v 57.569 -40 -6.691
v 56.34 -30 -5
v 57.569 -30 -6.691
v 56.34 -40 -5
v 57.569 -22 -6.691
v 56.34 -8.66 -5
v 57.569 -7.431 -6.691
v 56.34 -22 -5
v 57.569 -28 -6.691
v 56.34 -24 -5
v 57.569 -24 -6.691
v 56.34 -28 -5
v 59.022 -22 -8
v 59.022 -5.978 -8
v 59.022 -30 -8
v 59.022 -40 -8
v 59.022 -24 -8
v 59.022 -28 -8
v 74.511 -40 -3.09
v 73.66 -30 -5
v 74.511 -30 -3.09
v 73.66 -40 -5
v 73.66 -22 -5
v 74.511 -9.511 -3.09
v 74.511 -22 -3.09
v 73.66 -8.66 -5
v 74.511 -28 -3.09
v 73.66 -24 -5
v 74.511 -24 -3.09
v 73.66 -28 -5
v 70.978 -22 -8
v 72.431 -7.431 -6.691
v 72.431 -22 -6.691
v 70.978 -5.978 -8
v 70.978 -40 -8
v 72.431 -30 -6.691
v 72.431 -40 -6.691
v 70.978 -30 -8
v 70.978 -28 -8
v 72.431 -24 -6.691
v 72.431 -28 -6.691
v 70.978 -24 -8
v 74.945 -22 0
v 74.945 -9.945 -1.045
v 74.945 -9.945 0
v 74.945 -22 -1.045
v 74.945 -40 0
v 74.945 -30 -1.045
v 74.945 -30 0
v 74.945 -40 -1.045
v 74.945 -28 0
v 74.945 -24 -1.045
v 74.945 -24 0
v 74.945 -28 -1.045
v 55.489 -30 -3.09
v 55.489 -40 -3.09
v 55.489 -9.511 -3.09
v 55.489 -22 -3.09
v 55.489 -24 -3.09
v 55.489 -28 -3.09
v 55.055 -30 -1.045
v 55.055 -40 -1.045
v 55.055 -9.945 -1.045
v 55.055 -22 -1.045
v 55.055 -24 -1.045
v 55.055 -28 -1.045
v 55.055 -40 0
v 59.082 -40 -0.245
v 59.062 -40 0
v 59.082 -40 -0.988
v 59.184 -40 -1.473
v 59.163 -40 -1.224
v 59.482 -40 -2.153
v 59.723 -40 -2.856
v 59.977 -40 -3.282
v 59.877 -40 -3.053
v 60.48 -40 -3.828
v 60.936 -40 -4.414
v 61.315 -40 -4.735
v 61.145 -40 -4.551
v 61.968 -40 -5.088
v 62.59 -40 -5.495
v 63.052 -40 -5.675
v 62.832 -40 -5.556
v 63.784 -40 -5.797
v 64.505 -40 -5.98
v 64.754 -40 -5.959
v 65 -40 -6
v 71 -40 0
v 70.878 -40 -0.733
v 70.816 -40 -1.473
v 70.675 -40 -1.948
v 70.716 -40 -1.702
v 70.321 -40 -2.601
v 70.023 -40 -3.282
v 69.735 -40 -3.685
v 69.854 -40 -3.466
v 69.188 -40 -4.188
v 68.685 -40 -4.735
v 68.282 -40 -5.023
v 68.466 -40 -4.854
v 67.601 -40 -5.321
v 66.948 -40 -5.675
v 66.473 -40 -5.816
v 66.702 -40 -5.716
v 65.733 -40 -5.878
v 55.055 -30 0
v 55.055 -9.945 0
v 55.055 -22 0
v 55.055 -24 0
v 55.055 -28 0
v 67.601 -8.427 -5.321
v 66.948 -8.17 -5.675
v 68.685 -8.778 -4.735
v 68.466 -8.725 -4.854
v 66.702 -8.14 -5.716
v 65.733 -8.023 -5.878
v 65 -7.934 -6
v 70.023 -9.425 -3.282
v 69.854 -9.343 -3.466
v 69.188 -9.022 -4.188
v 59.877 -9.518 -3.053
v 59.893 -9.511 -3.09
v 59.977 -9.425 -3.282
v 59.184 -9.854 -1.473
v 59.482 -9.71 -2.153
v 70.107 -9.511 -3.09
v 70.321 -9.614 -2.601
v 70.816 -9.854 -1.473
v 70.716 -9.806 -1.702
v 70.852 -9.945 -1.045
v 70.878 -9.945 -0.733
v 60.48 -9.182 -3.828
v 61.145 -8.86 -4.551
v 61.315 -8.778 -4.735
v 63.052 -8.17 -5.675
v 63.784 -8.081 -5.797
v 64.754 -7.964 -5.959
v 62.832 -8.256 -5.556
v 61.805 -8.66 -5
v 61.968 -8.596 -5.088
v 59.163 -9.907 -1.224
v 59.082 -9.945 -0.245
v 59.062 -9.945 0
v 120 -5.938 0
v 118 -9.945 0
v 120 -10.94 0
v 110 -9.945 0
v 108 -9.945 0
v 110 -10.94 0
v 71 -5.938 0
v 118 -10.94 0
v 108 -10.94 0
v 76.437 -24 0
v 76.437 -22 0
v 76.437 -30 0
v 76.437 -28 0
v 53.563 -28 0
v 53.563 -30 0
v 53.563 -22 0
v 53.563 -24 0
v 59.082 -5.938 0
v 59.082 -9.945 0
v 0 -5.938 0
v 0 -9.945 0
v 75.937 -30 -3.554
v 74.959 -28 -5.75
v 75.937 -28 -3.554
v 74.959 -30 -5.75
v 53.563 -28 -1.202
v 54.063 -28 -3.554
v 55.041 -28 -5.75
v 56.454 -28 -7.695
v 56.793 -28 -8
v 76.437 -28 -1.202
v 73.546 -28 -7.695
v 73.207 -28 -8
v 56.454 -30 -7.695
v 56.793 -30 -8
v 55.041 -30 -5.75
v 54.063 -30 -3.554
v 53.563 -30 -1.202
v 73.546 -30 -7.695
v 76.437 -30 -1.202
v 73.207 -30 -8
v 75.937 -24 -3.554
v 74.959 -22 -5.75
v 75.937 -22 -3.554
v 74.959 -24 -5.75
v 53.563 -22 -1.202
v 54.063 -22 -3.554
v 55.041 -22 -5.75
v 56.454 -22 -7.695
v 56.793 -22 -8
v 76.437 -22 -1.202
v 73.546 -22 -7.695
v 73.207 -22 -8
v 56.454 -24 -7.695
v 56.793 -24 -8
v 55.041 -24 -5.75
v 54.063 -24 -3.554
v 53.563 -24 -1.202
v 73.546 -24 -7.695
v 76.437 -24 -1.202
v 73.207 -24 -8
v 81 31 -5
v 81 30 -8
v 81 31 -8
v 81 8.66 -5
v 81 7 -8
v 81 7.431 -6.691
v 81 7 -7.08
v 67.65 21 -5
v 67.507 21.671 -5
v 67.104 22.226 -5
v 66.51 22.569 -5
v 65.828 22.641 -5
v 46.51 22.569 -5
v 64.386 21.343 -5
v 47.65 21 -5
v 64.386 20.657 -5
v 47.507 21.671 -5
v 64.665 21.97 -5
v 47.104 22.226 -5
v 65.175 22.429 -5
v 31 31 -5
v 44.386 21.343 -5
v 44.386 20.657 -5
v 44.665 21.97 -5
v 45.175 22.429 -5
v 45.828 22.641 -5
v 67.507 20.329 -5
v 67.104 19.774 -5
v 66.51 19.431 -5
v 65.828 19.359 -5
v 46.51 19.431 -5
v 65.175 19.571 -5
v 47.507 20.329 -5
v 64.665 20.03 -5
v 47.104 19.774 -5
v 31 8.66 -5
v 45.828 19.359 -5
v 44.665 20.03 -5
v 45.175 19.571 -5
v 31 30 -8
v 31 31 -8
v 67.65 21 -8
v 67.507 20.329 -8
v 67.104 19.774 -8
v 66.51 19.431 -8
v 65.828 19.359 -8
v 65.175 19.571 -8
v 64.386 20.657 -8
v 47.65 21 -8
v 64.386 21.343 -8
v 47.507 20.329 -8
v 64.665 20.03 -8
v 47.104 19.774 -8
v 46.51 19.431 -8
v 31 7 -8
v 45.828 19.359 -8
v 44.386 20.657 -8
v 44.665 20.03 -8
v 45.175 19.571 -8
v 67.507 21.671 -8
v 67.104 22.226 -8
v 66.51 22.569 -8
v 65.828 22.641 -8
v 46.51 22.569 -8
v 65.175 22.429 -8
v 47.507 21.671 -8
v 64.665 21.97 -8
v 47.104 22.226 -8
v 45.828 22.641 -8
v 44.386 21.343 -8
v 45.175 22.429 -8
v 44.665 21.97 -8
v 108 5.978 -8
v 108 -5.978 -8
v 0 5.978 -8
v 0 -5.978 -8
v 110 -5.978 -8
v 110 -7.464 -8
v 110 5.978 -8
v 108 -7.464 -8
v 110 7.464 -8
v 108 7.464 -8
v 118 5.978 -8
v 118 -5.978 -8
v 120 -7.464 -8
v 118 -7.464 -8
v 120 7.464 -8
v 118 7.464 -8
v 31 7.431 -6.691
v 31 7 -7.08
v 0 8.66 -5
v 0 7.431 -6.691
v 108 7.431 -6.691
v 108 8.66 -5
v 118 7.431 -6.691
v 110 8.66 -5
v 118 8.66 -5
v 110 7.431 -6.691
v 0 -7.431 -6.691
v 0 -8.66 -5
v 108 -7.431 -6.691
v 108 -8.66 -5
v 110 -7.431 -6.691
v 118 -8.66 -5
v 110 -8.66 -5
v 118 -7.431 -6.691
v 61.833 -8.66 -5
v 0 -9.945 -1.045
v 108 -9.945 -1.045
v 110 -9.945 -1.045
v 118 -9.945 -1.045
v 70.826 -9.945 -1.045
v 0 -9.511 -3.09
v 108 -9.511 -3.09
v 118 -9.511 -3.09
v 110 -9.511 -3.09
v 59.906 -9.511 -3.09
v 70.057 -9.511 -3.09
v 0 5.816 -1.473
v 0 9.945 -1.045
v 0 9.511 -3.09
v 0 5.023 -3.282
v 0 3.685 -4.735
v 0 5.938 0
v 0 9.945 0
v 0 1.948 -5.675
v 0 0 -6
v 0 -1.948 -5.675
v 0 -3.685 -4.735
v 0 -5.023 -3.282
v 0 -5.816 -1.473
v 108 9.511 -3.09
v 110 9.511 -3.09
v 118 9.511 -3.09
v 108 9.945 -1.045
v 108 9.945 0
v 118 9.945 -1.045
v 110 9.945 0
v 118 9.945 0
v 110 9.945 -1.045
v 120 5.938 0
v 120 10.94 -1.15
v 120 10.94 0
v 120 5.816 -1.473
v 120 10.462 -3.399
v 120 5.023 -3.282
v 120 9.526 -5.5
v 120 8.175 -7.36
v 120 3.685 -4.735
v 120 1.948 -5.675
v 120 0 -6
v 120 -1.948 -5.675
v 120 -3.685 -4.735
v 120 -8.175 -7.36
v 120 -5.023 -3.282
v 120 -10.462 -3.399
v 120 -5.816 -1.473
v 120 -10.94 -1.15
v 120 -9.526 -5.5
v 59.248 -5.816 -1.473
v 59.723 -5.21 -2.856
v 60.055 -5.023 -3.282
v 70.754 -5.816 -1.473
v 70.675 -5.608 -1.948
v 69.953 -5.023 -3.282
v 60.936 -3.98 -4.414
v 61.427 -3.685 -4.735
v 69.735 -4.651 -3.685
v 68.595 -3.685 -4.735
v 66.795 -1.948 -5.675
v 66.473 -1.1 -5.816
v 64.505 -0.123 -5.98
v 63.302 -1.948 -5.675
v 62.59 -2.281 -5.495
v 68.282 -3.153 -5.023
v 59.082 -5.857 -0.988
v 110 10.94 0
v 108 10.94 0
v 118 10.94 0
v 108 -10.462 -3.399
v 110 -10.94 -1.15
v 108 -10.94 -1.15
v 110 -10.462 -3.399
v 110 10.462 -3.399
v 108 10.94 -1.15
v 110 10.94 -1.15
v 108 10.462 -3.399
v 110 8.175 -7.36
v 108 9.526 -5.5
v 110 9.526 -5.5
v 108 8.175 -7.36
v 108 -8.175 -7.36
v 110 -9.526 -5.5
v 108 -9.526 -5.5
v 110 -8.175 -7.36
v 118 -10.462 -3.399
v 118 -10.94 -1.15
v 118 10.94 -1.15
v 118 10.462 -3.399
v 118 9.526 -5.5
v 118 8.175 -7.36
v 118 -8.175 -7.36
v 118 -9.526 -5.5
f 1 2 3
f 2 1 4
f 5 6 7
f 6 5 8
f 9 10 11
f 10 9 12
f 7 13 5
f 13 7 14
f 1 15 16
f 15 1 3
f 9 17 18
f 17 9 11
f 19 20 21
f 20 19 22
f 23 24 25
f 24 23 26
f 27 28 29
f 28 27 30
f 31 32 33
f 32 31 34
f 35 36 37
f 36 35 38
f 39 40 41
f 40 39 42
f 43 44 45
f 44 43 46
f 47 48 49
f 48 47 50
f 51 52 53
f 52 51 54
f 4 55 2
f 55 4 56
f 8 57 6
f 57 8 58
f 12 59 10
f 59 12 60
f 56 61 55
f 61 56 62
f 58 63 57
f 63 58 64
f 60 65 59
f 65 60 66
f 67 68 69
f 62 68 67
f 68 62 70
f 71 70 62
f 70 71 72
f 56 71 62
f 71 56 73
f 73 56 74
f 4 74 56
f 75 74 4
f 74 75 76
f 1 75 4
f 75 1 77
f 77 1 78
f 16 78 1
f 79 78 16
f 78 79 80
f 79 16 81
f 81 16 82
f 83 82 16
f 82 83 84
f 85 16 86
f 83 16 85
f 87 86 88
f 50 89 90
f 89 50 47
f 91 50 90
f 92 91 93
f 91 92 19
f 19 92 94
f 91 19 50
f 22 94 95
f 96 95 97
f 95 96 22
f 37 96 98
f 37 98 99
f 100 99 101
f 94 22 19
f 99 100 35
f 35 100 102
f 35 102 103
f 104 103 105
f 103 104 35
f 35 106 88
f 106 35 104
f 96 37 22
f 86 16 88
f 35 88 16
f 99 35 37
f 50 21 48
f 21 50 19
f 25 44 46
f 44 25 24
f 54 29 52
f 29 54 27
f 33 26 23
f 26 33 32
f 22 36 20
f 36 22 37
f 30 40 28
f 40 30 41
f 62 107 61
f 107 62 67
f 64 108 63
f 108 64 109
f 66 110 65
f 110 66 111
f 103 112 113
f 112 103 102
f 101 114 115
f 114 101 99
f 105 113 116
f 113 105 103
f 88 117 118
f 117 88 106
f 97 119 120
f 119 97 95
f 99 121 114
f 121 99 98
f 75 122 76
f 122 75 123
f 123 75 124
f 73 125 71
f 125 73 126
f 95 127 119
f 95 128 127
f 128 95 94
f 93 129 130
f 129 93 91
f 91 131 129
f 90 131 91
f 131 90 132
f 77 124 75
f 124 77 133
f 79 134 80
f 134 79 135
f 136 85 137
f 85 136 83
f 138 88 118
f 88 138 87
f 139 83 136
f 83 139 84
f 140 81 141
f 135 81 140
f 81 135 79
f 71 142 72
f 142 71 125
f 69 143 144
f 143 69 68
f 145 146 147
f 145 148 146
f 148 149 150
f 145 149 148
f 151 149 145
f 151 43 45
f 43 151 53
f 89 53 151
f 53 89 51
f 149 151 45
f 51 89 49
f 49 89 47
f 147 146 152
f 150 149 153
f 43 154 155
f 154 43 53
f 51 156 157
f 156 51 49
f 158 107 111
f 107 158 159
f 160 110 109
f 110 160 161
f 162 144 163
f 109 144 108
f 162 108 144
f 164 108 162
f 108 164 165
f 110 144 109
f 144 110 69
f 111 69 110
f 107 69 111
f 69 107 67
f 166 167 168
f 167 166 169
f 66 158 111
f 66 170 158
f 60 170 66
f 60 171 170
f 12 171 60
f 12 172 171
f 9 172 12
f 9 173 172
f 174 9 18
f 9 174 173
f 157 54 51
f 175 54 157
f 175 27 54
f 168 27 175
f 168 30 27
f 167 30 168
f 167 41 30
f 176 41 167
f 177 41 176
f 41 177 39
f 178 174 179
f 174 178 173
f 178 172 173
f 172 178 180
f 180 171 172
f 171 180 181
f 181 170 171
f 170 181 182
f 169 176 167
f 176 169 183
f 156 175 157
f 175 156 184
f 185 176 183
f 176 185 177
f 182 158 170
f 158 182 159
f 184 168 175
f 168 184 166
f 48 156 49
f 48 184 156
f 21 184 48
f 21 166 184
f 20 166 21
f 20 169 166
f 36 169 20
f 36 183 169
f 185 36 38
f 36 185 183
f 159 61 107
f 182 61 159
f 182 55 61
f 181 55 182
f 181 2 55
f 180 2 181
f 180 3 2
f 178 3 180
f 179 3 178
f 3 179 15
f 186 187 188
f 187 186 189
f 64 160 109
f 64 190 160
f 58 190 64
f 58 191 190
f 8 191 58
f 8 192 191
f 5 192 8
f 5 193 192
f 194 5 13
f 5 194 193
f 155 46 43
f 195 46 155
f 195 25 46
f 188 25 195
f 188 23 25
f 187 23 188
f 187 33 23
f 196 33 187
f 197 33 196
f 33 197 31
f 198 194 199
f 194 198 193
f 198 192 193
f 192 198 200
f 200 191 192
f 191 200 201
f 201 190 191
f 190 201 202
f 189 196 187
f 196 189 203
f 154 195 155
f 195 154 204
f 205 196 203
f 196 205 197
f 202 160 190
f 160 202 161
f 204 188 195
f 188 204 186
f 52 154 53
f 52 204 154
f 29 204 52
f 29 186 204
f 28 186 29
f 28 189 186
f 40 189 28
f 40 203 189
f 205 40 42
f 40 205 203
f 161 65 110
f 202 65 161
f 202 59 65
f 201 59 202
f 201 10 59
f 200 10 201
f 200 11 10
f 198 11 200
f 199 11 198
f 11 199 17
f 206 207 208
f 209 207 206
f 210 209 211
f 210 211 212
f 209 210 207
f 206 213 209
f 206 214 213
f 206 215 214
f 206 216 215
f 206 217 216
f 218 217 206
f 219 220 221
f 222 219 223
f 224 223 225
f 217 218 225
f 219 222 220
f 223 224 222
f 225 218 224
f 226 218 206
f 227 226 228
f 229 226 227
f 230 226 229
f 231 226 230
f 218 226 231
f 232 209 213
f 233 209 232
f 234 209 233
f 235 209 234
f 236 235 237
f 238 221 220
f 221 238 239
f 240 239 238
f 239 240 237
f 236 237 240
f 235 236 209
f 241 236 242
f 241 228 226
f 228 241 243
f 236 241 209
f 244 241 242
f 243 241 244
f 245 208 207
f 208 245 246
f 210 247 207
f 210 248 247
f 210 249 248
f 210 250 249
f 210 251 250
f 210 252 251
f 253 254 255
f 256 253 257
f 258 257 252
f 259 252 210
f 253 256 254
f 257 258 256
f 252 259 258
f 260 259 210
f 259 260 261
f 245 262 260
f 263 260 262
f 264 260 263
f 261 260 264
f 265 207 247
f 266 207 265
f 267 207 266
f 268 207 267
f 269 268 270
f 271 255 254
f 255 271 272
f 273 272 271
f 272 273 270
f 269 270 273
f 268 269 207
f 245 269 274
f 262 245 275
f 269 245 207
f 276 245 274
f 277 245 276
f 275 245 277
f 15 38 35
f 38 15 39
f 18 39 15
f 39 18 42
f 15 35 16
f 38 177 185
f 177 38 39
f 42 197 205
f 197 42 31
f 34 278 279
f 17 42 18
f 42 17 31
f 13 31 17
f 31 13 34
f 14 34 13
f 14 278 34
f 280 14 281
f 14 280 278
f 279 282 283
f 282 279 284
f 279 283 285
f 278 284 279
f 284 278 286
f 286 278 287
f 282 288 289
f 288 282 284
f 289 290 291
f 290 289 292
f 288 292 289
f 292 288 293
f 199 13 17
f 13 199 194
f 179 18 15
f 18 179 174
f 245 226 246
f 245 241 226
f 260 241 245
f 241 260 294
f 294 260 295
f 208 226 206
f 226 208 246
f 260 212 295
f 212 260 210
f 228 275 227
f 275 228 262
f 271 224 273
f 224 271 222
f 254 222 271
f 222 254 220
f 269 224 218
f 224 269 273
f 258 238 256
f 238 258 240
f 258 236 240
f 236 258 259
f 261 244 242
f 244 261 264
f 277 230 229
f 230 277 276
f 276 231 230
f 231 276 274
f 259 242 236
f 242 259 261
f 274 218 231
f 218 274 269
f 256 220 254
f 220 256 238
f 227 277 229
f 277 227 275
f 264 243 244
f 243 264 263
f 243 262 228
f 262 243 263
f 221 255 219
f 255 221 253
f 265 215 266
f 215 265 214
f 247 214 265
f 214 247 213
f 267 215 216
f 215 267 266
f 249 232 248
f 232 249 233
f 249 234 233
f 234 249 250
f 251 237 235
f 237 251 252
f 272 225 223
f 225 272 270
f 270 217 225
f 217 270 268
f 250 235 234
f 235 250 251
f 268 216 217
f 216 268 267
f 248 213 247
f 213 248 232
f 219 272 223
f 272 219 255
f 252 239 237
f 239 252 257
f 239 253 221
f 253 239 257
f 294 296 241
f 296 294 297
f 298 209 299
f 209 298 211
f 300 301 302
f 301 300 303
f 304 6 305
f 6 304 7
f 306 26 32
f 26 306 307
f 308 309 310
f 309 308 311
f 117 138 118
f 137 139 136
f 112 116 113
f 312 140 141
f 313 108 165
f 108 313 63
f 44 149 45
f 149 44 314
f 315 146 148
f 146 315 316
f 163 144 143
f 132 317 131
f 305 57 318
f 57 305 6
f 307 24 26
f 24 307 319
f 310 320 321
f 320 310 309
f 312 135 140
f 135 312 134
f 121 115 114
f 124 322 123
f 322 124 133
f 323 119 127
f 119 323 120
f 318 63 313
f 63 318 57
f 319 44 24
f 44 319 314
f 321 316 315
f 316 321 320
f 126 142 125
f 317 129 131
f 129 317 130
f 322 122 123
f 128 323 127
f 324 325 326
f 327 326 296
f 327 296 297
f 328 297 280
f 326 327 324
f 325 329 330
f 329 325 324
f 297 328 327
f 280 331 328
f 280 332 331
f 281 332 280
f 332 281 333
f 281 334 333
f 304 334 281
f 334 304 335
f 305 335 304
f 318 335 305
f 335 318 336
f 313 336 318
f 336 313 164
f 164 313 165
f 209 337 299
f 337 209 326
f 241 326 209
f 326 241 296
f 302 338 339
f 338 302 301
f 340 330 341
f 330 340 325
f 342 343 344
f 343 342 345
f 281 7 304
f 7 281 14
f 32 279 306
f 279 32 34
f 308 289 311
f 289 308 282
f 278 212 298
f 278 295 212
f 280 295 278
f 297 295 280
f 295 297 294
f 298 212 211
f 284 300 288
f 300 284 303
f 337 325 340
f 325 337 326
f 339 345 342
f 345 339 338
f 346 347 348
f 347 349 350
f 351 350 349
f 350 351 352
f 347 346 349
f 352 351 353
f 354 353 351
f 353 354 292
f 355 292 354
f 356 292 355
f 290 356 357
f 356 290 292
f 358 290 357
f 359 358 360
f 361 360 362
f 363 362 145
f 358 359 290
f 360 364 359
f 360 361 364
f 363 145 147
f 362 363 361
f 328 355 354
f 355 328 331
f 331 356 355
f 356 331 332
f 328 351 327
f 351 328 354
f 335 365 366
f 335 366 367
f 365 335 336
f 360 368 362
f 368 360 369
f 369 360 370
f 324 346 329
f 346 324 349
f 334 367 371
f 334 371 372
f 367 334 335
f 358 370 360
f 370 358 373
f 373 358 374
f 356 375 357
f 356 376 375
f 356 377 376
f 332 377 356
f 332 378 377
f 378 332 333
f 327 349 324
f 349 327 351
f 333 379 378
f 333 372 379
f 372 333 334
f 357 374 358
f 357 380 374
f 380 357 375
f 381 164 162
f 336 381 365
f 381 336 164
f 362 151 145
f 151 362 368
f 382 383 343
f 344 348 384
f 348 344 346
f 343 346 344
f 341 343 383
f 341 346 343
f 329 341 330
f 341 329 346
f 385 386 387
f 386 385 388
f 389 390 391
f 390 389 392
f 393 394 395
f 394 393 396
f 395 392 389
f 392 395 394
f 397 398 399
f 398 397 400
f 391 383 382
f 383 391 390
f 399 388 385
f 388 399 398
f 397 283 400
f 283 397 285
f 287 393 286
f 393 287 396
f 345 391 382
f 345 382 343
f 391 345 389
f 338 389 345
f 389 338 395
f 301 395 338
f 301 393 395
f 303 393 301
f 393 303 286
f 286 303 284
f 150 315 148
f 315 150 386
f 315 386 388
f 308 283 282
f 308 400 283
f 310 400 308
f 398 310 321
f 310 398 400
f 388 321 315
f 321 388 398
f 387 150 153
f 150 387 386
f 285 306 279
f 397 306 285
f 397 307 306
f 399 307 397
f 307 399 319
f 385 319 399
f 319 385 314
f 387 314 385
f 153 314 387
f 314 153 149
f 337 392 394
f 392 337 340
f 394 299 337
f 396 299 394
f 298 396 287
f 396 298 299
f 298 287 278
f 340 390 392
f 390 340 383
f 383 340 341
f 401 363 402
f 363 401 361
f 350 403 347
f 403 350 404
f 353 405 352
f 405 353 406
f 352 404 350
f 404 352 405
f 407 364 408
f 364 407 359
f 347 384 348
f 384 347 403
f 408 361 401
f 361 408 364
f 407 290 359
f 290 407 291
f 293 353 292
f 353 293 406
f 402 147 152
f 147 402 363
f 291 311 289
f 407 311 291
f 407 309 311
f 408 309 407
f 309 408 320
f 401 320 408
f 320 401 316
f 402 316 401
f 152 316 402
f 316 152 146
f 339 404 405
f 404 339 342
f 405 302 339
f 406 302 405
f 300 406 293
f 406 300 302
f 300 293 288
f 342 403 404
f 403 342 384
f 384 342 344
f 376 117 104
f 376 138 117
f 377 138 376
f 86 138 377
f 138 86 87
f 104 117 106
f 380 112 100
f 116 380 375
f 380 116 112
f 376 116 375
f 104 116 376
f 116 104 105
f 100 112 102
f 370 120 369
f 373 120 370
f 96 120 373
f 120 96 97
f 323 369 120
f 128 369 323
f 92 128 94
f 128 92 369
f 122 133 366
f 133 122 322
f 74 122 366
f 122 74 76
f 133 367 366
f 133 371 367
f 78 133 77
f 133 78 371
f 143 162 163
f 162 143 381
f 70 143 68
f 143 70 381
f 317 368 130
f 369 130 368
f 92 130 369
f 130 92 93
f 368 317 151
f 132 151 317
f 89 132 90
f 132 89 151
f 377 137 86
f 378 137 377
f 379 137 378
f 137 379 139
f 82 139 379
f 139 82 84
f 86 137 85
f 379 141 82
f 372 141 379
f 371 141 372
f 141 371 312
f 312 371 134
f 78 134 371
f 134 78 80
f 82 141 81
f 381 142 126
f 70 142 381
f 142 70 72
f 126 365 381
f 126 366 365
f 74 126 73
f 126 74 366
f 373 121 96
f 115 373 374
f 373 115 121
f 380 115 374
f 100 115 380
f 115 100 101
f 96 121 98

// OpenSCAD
// file: ../lib/common_wire_mount.scad
/* Common code for wiring mounts. See top_wire_mount.scad and 
 * bottom_wire_mount.scad for the model.
 * Copyright 2021 Alex Volkov <alex@flamy.ca>
 * License: Attribution-ShareAlike 4.0 International (CC BY-SA)
 * https://creativecommons.org/licenses/by-sa/4.0/
 *
 * Version 1.0 2021-04-10 Initial publication
 */


m3_bolt_d = 3.3;

module cable_mount(cable_len, out_d, in_d){
    rotate([0, 90, 0 ]){
    difference(){
        cylinder(d=out_d, h=cable_len);
        cylinder(d=in_d, h=cable_len);
        translate([-out_d/2, 0, cable_len/2])
            cube([out_d, out_d, cable_len], center=true);
        }
    }
}


module plate_mount_top(y_offset, thickness=2){
    difference(){
        translate([-5, 0, 0]){
            cube([50, 25, thickness]);
            cube([15, 7, thickness*2]);
            translate([35, 0, 0, ])
                cube([15, 7, thickness*2]);
        }
        translate([10, y_offset, 0])
            cylinder(d=m3_bolt_d, h=10, $fn=15);
        translate([30, y_offset, 0])
            cylinder(d=m3_bolt_d, h=10, $fn=15);
    }
    
}

module plate_mount(y_offset, thickness=2){
    difference(){
        translate([-5, 0, 0]) cube([50, 24, thickness]);
        translate([10, y_offset, 0])
            cylinder(d=m3_bolt_d, h=10, $fn=15);
        translate([30, y_offset, 0])
            cylinder(d=m3_bolt_d, h=10, $fn=15);
    }
    
}
// main file
/* Bottom wire mount for MKS GEN 1.4 for wiring heated bed and power cables
 * Copyright 2021 Alex Volkov <alex@flamy.ca>
 * License: Attribution-ShareAlike 4.0 International (CC BY-SA)
 * https://creativecommons.org/licenses/by-sa/4.0/
 *
 * Version 1.0 2021-04-10 Initial publication
 */
 
include <../lib/common_wire_mount.scad>



module bottom_wire_holder(){
    inner_pipe_d = 12;
    outer_d = 20;
    vert_pipe_offset = 65;
    vert_pipe_len = 40;
    heated_bed_connector = 120;
    bottom_shave_offset = 2;
    difference(){
        union(){
            cable_mount(heated_bed_connector, outer_d, inner_pipe_d);
            translate([heated_bed_connector - 12, 0, 0])
                cable_mount(2, outer_d+2, inner_pipe_d);
            translate([heated_bed_connector - 2 , 0, 0])
                cable_mount(2, outer_d+2, inner_pipe_d);
            // vertical pipe #1
            translate([vert_pipe_offset, 0 , 0]){
                rotate([0,0,270]){
                    cable_mount(vert_pipe_len, outer_d , inner_pipe_d);
                    translate([28, 0, 0])
                        cable_mount(2, outer_d + 3, inner_pipe_d + 5);
                    translate([22, 0, 0])
                        cable_mount(2, outer_d + 3, inner_pipe_d + 5);
                }
            }
            // vertical pipe #2
            /*
            pipe_2 = 60;
            translate([vert_pipe_offset + 60, 0 , 0]){
                rotate([0,0,270]){
                    cable_mount(pipe_2, outer_d, inner_pipe_d);
                    translate([pipe_2, 0, 0])
                        cable_mount(2, outer_d+2, inner_pipe_d);
                    translate([pipe_2 - 10, 0, 0])
                        cable_mount(2, outer_d+2, inner_pipe_d);
                }
            }
            */
            translate([36, 7, -outer_d/2 + 2])
                plate_mount(14, 3);
        }
        // horizontal cutout
        rotate([0, 90, 0 ])
            cylinder(d=inner_pipe_d, h=heated_bed_connector);
        // vertical pipe cutout #1
        
        translate([vert_pipe_offset, 0, 0])
            rotate([90, 0, 0 ])
                cylinder(d=inner_pipe_d, h=vert_pipe_len);
        // vertical pipe cutout #2
        /*
        translate([vert_pipe_offset + 60, 20, 0])
            rotate([90, 0, 0 ])
                cylinder(d=inner_pipe_d, h=heated_bed_connector);
        */
        //shave off bottom
        
        translate([0, -70, -outer_d + bottom_shave_offset])
            cube([heated_bed_connector, 100, 10]);
        
    }
}

bottom_wire_holder();
